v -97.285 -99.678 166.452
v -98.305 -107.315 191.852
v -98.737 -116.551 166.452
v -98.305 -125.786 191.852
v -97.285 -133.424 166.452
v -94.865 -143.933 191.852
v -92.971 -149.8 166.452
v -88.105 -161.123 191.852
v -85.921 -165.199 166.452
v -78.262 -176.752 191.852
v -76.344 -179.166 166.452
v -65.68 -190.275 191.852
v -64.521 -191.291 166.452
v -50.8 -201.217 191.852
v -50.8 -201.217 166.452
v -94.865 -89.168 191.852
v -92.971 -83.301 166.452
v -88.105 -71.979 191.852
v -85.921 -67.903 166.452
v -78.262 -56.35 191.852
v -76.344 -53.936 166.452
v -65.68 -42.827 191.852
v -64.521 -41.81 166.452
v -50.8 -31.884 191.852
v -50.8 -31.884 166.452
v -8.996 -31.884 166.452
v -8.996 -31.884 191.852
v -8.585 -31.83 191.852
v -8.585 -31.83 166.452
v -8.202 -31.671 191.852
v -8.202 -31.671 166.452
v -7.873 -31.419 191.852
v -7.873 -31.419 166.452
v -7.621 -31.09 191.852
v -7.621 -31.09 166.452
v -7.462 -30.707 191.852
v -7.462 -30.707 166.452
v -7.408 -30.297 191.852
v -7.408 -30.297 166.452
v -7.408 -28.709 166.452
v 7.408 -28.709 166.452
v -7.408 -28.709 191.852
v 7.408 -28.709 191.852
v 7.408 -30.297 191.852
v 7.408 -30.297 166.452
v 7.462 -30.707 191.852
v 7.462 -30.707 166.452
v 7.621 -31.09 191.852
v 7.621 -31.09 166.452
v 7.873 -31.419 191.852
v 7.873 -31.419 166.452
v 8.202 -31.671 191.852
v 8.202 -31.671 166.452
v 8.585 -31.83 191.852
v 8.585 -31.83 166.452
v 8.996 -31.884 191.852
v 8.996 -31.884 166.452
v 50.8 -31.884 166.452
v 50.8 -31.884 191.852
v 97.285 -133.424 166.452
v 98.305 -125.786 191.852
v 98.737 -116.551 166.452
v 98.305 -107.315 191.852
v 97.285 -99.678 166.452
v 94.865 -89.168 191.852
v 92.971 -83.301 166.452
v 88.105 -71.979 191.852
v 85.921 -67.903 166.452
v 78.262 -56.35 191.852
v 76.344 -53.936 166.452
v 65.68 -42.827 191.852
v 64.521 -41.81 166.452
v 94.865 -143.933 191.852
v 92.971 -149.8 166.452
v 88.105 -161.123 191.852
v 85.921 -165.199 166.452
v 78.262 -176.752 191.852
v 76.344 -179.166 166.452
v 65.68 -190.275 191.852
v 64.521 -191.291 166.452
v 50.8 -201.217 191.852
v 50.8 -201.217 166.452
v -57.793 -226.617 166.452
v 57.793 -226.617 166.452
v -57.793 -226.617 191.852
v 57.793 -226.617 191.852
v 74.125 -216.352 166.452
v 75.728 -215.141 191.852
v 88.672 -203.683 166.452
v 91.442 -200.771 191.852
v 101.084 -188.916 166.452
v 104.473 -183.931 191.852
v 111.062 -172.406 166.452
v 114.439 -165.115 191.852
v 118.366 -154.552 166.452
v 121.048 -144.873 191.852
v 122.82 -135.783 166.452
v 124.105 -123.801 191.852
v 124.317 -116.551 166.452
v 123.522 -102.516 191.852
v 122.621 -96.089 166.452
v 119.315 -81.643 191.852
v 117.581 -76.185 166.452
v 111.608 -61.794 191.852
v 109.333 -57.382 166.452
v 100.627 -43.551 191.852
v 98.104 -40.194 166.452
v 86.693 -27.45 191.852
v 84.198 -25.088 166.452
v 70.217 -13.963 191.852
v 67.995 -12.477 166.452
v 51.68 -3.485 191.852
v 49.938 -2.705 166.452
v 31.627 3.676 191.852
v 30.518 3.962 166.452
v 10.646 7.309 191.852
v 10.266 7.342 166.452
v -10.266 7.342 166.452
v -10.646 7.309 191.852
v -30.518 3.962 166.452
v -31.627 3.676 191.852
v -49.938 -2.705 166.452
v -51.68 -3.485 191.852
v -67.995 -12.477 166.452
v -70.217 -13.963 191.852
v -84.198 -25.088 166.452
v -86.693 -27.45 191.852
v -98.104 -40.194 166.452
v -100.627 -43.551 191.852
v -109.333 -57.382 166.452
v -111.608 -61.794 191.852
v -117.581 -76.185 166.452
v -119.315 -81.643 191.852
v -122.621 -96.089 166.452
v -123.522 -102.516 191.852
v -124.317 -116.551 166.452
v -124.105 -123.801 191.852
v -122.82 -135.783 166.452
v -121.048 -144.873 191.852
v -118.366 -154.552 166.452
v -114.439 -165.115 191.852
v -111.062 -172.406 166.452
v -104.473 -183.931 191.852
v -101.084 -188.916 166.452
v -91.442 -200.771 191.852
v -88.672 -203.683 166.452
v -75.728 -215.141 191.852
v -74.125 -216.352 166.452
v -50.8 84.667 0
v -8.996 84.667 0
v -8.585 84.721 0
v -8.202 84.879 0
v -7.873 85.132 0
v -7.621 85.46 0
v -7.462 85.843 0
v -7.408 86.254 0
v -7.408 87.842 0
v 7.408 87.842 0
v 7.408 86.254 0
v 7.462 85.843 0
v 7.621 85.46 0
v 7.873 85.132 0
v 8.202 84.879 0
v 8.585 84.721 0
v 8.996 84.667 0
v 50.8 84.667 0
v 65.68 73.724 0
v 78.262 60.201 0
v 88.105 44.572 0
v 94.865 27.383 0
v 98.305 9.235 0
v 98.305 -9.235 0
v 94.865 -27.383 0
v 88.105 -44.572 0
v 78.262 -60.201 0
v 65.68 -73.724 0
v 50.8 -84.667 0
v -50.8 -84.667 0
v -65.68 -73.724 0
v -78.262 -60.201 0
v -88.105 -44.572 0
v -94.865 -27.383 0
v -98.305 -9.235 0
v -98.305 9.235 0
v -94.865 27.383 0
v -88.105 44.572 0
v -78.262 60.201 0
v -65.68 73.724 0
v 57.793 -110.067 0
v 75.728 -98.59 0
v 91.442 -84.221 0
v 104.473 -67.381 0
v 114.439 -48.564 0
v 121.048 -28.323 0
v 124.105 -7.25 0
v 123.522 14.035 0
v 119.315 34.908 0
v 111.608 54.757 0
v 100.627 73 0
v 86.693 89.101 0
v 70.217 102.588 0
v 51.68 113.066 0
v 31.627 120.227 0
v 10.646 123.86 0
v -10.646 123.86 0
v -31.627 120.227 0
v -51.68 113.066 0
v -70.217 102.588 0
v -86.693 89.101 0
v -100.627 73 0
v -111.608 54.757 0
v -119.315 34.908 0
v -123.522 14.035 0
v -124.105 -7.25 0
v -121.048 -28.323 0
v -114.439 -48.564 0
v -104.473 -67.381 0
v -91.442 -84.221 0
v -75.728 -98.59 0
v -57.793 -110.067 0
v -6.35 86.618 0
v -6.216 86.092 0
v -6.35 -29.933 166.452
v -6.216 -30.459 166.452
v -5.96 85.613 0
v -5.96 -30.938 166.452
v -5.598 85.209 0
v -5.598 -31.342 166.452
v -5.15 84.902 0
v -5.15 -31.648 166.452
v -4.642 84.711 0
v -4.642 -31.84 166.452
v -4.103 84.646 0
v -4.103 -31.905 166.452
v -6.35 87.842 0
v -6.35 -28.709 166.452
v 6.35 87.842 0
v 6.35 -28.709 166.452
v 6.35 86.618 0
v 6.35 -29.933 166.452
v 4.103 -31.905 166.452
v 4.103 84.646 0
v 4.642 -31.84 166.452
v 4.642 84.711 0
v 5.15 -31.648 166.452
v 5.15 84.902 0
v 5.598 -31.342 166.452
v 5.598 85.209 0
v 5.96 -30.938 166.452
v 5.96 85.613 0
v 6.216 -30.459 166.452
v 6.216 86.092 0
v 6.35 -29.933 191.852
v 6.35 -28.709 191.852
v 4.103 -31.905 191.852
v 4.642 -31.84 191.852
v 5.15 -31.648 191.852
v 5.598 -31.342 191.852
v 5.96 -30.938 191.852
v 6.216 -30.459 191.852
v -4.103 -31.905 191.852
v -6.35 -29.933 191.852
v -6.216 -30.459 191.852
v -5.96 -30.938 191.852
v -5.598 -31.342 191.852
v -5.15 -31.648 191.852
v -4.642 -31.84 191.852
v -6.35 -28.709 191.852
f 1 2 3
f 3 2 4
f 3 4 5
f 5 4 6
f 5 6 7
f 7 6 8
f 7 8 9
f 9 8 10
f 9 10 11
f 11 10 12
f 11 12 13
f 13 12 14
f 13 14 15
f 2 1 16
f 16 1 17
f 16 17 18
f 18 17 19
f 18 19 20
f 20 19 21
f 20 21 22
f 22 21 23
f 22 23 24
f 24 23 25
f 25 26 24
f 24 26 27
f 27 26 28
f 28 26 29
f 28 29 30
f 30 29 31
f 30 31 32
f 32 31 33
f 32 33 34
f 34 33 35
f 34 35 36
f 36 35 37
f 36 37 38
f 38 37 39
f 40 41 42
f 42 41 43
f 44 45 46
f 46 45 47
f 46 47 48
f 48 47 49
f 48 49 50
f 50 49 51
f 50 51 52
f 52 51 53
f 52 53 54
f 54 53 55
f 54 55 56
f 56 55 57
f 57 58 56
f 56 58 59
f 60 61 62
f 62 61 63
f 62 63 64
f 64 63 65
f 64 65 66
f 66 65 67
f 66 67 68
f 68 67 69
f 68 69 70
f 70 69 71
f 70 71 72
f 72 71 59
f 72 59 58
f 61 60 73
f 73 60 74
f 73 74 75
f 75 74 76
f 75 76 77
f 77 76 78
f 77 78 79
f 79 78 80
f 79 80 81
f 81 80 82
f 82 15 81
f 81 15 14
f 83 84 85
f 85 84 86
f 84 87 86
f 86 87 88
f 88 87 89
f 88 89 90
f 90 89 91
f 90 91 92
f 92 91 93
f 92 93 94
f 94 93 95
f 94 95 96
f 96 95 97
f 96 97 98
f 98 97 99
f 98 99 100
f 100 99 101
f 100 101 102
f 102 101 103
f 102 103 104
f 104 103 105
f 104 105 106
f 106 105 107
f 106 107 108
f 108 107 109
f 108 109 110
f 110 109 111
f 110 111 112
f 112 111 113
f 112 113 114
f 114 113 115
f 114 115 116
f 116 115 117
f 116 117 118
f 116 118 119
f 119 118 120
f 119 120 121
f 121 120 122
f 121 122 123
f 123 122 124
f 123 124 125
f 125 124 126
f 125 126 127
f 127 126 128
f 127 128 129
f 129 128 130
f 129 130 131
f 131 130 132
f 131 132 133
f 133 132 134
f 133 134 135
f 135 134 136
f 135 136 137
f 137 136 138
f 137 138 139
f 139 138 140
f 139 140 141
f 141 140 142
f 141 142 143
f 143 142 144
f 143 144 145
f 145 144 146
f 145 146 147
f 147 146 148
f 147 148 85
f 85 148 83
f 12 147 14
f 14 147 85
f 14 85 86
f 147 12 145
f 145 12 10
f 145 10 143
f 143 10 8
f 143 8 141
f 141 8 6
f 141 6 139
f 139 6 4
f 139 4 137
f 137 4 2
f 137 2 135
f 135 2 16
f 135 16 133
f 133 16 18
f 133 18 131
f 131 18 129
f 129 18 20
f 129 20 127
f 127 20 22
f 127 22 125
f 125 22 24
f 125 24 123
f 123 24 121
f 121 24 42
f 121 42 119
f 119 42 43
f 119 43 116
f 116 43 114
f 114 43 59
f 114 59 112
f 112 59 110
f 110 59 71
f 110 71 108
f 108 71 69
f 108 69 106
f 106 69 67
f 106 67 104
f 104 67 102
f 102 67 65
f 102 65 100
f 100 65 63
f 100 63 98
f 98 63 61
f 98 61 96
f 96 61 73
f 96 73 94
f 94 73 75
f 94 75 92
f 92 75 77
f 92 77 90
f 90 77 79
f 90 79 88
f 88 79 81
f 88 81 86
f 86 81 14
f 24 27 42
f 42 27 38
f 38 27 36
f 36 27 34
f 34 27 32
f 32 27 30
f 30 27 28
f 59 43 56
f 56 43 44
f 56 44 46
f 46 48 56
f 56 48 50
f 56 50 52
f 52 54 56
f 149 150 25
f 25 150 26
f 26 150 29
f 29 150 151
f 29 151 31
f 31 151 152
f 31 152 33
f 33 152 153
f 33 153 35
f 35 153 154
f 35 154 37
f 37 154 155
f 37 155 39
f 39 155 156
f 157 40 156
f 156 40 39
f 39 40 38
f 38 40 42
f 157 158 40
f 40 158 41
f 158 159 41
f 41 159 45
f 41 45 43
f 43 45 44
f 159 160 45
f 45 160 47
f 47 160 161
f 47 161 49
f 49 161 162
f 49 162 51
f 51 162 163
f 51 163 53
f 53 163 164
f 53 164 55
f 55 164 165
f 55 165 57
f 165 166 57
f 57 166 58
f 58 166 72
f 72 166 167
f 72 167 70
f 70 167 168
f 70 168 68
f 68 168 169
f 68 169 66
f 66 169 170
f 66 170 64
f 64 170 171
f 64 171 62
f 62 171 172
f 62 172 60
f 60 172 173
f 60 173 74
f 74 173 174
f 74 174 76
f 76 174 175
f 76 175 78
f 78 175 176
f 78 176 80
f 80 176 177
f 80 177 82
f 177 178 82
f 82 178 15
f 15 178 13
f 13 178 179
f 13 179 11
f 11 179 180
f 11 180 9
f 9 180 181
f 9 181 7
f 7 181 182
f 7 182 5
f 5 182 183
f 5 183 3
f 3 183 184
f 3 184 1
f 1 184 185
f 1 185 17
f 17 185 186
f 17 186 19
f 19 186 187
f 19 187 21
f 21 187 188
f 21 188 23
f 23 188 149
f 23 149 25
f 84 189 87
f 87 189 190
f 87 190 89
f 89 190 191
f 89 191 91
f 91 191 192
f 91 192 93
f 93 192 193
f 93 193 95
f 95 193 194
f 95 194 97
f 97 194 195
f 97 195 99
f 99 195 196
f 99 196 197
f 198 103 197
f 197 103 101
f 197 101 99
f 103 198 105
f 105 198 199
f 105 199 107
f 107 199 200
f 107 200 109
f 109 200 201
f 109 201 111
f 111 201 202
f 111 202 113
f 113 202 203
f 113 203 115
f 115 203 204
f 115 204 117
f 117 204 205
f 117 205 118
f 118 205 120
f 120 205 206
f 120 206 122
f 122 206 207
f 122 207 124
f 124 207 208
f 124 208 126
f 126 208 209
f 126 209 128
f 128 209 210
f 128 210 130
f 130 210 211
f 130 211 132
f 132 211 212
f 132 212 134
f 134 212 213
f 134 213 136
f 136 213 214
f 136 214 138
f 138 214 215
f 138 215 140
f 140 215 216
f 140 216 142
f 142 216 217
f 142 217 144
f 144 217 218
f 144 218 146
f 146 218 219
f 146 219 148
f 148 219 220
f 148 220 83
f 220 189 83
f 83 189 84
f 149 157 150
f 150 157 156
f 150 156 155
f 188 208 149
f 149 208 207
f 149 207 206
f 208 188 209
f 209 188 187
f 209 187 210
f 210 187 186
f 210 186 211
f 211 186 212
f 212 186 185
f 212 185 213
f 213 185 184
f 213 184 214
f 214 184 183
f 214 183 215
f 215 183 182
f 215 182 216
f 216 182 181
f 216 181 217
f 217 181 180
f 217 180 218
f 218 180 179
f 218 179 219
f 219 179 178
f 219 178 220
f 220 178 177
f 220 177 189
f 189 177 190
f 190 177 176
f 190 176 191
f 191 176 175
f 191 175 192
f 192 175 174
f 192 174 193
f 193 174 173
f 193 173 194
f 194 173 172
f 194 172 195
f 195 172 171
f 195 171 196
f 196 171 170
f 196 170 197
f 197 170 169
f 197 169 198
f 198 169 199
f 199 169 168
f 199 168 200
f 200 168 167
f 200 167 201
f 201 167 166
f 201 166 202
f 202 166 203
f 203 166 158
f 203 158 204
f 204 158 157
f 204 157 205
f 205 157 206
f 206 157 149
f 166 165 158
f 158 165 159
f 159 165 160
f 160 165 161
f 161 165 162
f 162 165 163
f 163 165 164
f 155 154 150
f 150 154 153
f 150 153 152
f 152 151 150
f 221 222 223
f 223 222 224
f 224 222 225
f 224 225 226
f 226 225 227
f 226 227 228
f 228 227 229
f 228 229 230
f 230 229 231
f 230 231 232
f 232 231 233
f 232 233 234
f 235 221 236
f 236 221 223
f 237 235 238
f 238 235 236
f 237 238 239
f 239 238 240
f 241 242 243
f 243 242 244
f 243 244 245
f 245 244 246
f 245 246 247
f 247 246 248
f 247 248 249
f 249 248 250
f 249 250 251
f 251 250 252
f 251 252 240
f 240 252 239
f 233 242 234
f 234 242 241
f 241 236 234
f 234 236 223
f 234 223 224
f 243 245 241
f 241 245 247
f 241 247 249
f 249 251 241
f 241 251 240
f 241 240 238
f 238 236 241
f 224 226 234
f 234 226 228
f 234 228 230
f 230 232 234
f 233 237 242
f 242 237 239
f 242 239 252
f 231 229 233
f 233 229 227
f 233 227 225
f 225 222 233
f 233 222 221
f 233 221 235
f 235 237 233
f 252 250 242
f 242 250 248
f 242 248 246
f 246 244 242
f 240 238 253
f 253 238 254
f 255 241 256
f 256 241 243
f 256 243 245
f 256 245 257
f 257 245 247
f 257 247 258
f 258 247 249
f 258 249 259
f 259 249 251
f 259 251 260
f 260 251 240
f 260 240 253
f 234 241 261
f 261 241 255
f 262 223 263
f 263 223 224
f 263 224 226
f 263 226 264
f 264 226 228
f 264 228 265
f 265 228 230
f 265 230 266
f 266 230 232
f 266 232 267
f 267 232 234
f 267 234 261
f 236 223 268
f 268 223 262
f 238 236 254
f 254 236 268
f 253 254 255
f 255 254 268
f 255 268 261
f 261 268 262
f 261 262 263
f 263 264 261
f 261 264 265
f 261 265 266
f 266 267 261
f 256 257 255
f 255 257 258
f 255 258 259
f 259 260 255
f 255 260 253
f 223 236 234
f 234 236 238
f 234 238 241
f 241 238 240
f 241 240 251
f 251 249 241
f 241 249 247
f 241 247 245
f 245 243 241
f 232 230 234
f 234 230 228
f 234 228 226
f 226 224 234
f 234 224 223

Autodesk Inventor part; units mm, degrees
ref_plane "YZ Plane" through (0, 0, 0) normal (1, 0, 0) x (0, 1, 0)
ref_plane "XZ Plane" through (0, 0, 0) normal (0, 1, 0) x (-1, 0, 0)
sketch "Sketch1" plane through (0, 0, 0) normal (0, 0, 1) x (1, 0, 0)
  line L0 (-50.8, -84.6667) -> (50.8, -84.6667)
  arc A0 (57.793, -110.0667) -> (-57.793, -110.0667) centre (0, 0) ccw
  arc A1 (-50.8, 84.6667) -> (-50.8, -84.6667) centre (0, 0) ccw
  arc A2 (50.8, -84.6667) -> (50.8, 84.6667) centre (0, 0) ccw
  line L1 (-57.793, -110.0667) -> (57.793, -110.0667)
  line L2 (0, 84.6667) -> (0, 87.8417) construction
  line L3 (-7.4083, 87.8417) -> (7.4083, 87.8417)
  line L4 (-7.4083, 87.8417) -> (-7.4083, 86.2542)
  line L5 (7.4083, 87.8417) -> (7.4083, 86.2542)
  line L6 (0, 84.6667) -> (8.9958, 84.6667) construction
  arc A3 (7.4083, 86.2542) -> (8.9958, 84.6667) centre (8.9958, 86.2542) ccw
  arc A4 (-8.9958, 84.6667) -> (-7.4083, 86.2542) centre (-8.9958, 86.2542) ccw
  line L7 (-50.8, 84.6667) -> (-8.9958, 84.6667)
  line L8 (8.9958, 84.6667) -> (50.8, 84.6667)
  line L9 (-8.9958, 84.6667) -> (0, 84.6667) construction
  line L10 (-6.35, 87.8417) -> (0, 87.8417)
  line L11 (7.4083, 87.8417) -> (-7.4083, 87.8417)
  line L12 (-6.35, 87.8417) -> (-6.35, 86.6178)
  line L13 (-4.1034, 84.646) -> (0, 84.646)
  line L14 (0, 84.646) -> (0, 87.8417) construction
  line L15 (-6.3485, 84.6667) -> (-3.1743, 87.8409) construction
  arc A5 (-3.1736, 84.646) -> (-6.35, 87.8417) centre (-6.3485, 84.6667) ccw construction
  arc A6 (-6.35, 86.6178) -> (-4.1034, 84.646) centre (-4.1034, 86.9117) ccw
  line L16 (6.35, 87.8417) -> (0, 87.8417)
  line L17 (6.35, 87.8417) -> (6.35, 86.6178)
  line L18 (4.1034, 84.646) -> (0, 84.646)
  line L19 (6.3485, 84.6667) -> (3.1743, 87.8409) construction
  arc A7 (6.35, 87.8417) -> (3.1736, 84.646) centre (6.3485, 84.6667) ccw construction
  arc A8 (4.1034, 84.646) -> (6.35, 86.6178) centre (4.1034, 86.9117) ccw
  dimension "d1" = 101.6
  dimension "d2" = 25.4
  dimension "d34" = 14.8167
  dimension "d35" = 1.5875
  dimension "d36" = 1.5875
  dimension "d38" = 6.35
  dimension "d39" = 3.175
  dimension "d40" = 45
  dimension "d41" = 2.2657
  dimension "d42" = 2.2466
ref_plane "Work Plane2" through (0, 0, 203.2) normal (0, 0, 1) x (1, 0, 0)
sketch "Sketch6" plane through (0, 0, 0) normal (1, 0, 0) x (0, 1, 0)
  line L0 (-110.0667, 0) -> (124.3169, 0) projected
  line L1 (-83.4784, 0) -> (-200.0291, 166.4517)
  point P0 (0, 0)
  dimension "d28" = 203.2
  dimension "d29" = 55
sweep "ramp" add profiles "Sketch1" path "Sketch6" path curves L1
sweep "light angle" add profiles "Sketch1" path "Sketch6" separate body path curves L1 contours L3 L17 A8 L18 L13 A6 L12
sketch "Sketch7" plane through (0, -116.5507, 166.4517) normal (0, 0, 1) x (1, 0, 0)
  arc A0 (-50.8, 84.6667) -> (-50.8, -84.6667) centre (0, 0) ccw projected
  arc A1 (57.793, -110.0667) -> (-57.793, -110.0667) centre (0, 0) ccw
  line L0 (50.8, -84.6667) -> (-50.8, -84.6667) projected
  line L1 (-50.8, -84.6667) -> (50.8, -84.6667)
  arc A2 (57.793, -110.0667) -> (-57.793, -110.0667) centre (0, 0) ccw projected
  line L2 (57.793, -110.0667) -> (-57.793, -110.0667)
  arc A3 (-50.8, 84.6667) -> (-50.8, -84.6667) centre (0, 0) ccw
  arc A4 (50.8, -84.6667) -> (50.8, 84.6667) centre (0, 0) ccw
  line L3 (-7.4083, 87.8417) -> (7.4083, 87.8417) projected
  line L4 (-7.4083, 87.8417) -> (7.4083, 87.8417)
  arc A5 (7.4083, 86.2542) -> (8.9958, 84.6667) centre (8.9958, 86.2542) ccw projected
  line L5 (7.4083, 87.8417) -> (7.4083, 86.2542)
  line L6 (-7.4083, 202.8049) -> (-7.4083, 86.2542) projected
  line L7 (-7.4083, 87.8417) -> (-7.4083, 86.2542)
  line L8 (-8.9958, 201.2174) -> (-8.9958, 84.6667) projected
  arc A6 (-8.9958, 84.6667) -> (-7.4083, 86.2542) centre (-8.9958, 86.2542) ccw projected
  arc A7 (-8.9958, 84.6667) -> (-7.4083, 86.2542) centre (-8.9958, 86.2542) ccw
  arc A8 (7.4083, 86.2542) -> (8.9958, 84.6667) centre (8.9958, 86.2542) ccw
  line L9 (-50.8, 84.6667) -> (-8.9958, 84.6667)
  line L10 (8.9958, 84.6667) -> (50.8, 84.6667)
  line L11 (-6.35, 87.8417) -> (-6.35, 86.6178) projected
  line L12 (-6.35, 87.8417) -> (-6.35, 86.6178)
  arc A9 (-6.35, 86.6178) -> (-4.1034, 84.646) centre (-4.1034, 86.9117) ccw projected
  arc A10 (4.1034, 84.646) -> (6.35, 86.6178) centre (4.1034, 86.9117) ccw projected
  line L13 (-4.1034, 84.646) -> (4.1034, 84.646)
  line L14 (6.35, 203.1686) -> (6.35, 86.6178) projected
  line L15 (6.35, 87.8417) -> (6.35, 86.6178)
  line L16 (-4.1034, 84.646) -> (4.1034, 84.646) projected
  arc A11 (-6.35, 86.6178) -> (-4.1034, 84.646) centre (-4.1034, 86.9117) ccw
  arc A12 (4.1034, 84.646) -> (6.35, 86.6178) centre (4.1034, 86.9117) ccw
  line L17 (-6.35, 87.8417) -> (6.35, 87.8417)
extrude "connection bottom" add sketch "Sketch7" along normal blind 25.4 contours A0 L0 A4 L10 A5 L5 L3 L14 A1 L2 L8 L9 | L8 A1 L6 A6 | A1 L14 L3 L6 bodies 1
extrude "light flat" add sketch "Sketch7" along normal blind 25.4 separate body contours L3 L14 A10 L13 A9 L11
equation "\"d35\" = 0.5 * d37"
equation "\"d37\" = 3.175"
properties part number "ramp bottom connect"
